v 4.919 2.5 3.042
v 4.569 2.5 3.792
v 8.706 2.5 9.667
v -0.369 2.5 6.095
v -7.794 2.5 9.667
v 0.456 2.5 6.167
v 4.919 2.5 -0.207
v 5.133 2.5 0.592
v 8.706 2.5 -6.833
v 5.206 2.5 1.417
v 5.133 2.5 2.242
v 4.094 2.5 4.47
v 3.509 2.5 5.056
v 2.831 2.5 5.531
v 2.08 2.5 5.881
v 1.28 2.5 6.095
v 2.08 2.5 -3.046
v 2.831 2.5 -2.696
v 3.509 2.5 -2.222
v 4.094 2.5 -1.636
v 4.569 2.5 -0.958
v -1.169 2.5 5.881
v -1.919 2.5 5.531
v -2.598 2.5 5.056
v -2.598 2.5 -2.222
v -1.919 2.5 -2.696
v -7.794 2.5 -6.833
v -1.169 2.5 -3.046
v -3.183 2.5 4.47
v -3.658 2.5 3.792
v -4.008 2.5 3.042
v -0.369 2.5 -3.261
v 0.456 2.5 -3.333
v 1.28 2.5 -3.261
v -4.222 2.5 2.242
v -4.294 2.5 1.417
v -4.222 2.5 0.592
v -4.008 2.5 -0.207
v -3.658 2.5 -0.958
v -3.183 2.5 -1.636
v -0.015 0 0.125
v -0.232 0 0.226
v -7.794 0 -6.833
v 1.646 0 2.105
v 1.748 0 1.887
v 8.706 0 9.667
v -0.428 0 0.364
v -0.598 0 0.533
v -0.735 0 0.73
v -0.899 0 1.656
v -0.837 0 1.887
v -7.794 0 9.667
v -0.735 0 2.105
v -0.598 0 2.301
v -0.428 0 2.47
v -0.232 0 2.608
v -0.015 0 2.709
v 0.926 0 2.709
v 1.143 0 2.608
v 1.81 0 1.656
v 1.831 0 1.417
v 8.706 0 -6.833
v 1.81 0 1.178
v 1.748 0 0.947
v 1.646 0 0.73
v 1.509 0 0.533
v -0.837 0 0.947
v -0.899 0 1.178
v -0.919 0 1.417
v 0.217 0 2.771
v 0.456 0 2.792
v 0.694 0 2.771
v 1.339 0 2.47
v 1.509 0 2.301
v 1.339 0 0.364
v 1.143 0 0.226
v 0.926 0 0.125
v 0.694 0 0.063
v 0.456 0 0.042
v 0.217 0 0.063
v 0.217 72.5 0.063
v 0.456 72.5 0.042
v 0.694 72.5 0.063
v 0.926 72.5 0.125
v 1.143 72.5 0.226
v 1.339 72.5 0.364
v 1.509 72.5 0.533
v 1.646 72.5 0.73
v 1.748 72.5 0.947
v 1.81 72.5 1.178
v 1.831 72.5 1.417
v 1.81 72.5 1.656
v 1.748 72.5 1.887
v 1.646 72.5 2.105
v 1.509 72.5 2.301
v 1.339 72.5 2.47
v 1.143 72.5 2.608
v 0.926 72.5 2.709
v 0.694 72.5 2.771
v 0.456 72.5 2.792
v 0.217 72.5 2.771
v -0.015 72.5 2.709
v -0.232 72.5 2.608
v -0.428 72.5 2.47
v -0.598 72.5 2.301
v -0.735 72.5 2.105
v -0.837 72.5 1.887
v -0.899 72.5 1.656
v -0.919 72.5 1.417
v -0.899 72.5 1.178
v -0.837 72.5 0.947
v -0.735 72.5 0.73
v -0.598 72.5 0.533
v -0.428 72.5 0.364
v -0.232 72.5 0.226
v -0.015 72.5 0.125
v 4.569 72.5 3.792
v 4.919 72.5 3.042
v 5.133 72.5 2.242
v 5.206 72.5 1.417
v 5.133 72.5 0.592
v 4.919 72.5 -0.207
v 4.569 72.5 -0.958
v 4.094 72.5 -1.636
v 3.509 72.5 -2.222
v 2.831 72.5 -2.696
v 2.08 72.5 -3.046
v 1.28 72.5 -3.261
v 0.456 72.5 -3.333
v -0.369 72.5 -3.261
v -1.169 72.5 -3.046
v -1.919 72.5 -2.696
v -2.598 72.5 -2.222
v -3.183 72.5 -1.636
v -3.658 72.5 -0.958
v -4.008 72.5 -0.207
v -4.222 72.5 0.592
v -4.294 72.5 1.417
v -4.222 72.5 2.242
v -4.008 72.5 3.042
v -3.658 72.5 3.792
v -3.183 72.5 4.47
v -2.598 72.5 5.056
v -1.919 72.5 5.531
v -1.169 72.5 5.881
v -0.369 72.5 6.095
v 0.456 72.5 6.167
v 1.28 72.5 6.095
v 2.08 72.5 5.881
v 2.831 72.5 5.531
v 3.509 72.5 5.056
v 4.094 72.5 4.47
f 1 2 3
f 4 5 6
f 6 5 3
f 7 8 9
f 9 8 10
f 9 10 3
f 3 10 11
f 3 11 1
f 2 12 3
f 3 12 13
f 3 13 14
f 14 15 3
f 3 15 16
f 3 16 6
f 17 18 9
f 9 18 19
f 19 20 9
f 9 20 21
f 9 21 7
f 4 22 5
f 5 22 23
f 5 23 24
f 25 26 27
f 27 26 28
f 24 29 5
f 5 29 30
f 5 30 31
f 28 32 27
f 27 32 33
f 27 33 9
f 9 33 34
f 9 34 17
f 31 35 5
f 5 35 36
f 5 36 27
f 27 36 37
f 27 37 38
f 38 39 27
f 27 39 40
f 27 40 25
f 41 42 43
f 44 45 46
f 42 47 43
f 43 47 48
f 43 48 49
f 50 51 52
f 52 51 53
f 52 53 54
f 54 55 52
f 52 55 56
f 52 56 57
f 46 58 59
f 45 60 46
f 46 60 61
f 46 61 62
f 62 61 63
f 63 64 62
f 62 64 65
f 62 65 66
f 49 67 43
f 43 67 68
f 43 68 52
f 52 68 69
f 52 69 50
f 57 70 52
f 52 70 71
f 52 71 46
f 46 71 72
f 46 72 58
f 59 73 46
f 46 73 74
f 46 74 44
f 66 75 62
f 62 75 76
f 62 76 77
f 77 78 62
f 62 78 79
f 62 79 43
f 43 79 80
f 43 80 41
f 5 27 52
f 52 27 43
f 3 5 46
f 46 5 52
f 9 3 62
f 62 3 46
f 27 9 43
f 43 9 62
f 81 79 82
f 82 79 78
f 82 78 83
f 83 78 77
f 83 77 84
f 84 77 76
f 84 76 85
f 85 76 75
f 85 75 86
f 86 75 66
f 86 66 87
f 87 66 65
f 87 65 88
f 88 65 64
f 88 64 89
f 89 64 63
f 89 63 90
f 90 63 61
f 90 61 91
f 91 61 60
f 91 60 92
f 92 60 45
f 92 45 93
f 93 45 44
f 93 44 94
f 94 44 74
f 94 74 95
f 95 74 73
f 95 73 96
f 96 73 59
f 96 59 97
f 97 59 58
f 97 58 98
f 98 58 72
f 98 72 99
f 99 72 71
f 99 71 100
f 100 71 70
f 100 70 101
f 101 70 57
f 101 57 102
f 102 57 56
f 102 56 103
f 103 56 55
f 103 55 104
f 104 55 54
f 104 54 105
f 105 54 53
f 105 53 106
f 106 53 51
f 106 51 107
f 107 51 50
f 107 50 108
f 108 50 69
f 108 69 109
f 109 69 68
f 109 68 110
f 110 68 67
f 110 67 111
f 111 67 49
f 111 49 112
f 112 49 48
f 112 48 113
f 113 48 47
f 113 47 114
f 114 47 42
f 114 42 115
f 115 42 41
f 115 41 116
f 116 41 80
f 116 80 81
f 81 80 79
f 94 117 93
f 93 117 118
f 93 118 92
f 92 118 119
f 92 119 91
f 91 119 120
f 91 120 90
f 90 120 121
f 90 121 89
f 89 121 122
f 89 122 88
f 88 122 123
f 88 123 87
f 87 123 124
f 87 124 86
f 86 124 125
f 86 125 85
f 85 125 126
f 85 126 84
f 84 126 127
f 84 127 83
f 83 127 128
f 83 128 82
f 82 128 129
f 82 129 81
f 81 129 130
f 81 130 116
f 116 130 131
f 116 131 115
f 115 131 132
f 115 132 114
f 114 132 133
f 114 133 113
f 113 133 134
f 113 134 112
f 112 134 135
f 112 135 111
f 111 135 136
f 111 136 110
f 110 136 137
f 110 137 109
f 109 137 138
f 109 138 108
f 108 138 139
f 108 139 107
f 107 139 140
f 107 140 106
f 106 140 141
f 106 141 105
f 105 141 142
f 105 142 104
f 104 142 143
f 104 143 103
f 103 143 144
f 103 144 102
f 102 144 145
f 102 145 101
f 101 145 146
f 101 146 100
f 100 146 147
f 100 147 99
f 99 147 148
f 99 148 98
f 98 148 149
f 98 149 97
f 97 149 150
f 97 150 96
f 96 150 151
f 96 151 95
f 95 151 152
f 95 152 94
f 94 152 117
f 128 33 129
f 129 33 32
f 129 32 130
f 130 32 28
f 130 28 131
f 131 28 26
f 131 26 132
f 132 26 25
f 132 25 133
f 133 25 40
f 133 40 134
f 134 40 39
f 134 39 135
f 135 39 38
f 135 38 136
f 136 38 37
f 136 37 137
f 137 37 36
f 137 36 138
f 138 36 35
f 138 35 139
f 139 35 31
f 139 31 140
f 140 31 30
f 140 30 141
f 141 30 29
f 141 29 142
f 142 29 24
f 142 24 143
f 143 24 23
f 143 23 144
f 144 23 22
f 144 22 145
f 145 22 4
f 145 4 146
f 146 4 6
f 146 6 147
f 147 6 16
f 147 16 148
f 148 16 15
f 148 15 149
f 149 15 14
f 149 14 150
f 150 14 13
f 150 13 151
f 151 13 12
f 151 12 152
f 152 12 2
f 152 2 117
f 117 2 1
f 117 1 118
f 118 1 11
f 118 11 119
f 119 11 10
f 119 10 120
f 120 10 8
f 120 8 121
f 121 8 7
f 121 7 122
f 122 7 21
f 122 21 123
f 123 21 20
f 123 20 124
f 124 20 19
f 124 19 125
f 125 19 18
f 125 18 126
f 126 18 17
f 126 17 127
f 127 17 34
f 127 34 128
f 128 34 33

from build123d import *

# Parameters (mm, degrees)
SKETCH1_W           = 16.5
SKETCH1_H           = 16.5
SKETCH1_R           = 1.375
BOSS_EXTRUDE1_DEPTH = 2.5
SKETCH2_R           = 4.75
SKETCH2_R_2         = 1.375
BOSS_EXTRUDE2_DEPTH = 70


with BuildPart() as part:
    # Sketch1 → Boss-Extrude1 (new body)
    with BuildSketch(Plane(origin=(0, 0, 0), x_dir=(1, 0, 0), z_dir=(0, 1, 0))):
        with Locations((0.455521472, -1.417177914)):
            Rectangle(SKETCH1_W, SKETCH1_H)
        with Locations((0.455521472, -1.417177914)):
            Circle(SKETCH1_R, mode=Mode.SUBTRACT)
    extrude(amount=BOSS_EXTRUDE1_DEPTH)

    # Sketch2 → Boss-Extrude2 (add)
    with BuildSketch(Plane(origin=(0, 2.5, 0), x_dir=(1, 0, 0), z_dir=(0, 1, 0))):
        with Locations((0.455521472, -1.417177914)):
            Circle(SKETCH2_R)
        with Locations((0.455521472, -1.417177914)):
            Circle(SKETCH2_R_2, mode=Mode.SUBTRACT)
    extrude(amount=BOSS_EXTRUDE2_DEPTH)


solid = part.part
